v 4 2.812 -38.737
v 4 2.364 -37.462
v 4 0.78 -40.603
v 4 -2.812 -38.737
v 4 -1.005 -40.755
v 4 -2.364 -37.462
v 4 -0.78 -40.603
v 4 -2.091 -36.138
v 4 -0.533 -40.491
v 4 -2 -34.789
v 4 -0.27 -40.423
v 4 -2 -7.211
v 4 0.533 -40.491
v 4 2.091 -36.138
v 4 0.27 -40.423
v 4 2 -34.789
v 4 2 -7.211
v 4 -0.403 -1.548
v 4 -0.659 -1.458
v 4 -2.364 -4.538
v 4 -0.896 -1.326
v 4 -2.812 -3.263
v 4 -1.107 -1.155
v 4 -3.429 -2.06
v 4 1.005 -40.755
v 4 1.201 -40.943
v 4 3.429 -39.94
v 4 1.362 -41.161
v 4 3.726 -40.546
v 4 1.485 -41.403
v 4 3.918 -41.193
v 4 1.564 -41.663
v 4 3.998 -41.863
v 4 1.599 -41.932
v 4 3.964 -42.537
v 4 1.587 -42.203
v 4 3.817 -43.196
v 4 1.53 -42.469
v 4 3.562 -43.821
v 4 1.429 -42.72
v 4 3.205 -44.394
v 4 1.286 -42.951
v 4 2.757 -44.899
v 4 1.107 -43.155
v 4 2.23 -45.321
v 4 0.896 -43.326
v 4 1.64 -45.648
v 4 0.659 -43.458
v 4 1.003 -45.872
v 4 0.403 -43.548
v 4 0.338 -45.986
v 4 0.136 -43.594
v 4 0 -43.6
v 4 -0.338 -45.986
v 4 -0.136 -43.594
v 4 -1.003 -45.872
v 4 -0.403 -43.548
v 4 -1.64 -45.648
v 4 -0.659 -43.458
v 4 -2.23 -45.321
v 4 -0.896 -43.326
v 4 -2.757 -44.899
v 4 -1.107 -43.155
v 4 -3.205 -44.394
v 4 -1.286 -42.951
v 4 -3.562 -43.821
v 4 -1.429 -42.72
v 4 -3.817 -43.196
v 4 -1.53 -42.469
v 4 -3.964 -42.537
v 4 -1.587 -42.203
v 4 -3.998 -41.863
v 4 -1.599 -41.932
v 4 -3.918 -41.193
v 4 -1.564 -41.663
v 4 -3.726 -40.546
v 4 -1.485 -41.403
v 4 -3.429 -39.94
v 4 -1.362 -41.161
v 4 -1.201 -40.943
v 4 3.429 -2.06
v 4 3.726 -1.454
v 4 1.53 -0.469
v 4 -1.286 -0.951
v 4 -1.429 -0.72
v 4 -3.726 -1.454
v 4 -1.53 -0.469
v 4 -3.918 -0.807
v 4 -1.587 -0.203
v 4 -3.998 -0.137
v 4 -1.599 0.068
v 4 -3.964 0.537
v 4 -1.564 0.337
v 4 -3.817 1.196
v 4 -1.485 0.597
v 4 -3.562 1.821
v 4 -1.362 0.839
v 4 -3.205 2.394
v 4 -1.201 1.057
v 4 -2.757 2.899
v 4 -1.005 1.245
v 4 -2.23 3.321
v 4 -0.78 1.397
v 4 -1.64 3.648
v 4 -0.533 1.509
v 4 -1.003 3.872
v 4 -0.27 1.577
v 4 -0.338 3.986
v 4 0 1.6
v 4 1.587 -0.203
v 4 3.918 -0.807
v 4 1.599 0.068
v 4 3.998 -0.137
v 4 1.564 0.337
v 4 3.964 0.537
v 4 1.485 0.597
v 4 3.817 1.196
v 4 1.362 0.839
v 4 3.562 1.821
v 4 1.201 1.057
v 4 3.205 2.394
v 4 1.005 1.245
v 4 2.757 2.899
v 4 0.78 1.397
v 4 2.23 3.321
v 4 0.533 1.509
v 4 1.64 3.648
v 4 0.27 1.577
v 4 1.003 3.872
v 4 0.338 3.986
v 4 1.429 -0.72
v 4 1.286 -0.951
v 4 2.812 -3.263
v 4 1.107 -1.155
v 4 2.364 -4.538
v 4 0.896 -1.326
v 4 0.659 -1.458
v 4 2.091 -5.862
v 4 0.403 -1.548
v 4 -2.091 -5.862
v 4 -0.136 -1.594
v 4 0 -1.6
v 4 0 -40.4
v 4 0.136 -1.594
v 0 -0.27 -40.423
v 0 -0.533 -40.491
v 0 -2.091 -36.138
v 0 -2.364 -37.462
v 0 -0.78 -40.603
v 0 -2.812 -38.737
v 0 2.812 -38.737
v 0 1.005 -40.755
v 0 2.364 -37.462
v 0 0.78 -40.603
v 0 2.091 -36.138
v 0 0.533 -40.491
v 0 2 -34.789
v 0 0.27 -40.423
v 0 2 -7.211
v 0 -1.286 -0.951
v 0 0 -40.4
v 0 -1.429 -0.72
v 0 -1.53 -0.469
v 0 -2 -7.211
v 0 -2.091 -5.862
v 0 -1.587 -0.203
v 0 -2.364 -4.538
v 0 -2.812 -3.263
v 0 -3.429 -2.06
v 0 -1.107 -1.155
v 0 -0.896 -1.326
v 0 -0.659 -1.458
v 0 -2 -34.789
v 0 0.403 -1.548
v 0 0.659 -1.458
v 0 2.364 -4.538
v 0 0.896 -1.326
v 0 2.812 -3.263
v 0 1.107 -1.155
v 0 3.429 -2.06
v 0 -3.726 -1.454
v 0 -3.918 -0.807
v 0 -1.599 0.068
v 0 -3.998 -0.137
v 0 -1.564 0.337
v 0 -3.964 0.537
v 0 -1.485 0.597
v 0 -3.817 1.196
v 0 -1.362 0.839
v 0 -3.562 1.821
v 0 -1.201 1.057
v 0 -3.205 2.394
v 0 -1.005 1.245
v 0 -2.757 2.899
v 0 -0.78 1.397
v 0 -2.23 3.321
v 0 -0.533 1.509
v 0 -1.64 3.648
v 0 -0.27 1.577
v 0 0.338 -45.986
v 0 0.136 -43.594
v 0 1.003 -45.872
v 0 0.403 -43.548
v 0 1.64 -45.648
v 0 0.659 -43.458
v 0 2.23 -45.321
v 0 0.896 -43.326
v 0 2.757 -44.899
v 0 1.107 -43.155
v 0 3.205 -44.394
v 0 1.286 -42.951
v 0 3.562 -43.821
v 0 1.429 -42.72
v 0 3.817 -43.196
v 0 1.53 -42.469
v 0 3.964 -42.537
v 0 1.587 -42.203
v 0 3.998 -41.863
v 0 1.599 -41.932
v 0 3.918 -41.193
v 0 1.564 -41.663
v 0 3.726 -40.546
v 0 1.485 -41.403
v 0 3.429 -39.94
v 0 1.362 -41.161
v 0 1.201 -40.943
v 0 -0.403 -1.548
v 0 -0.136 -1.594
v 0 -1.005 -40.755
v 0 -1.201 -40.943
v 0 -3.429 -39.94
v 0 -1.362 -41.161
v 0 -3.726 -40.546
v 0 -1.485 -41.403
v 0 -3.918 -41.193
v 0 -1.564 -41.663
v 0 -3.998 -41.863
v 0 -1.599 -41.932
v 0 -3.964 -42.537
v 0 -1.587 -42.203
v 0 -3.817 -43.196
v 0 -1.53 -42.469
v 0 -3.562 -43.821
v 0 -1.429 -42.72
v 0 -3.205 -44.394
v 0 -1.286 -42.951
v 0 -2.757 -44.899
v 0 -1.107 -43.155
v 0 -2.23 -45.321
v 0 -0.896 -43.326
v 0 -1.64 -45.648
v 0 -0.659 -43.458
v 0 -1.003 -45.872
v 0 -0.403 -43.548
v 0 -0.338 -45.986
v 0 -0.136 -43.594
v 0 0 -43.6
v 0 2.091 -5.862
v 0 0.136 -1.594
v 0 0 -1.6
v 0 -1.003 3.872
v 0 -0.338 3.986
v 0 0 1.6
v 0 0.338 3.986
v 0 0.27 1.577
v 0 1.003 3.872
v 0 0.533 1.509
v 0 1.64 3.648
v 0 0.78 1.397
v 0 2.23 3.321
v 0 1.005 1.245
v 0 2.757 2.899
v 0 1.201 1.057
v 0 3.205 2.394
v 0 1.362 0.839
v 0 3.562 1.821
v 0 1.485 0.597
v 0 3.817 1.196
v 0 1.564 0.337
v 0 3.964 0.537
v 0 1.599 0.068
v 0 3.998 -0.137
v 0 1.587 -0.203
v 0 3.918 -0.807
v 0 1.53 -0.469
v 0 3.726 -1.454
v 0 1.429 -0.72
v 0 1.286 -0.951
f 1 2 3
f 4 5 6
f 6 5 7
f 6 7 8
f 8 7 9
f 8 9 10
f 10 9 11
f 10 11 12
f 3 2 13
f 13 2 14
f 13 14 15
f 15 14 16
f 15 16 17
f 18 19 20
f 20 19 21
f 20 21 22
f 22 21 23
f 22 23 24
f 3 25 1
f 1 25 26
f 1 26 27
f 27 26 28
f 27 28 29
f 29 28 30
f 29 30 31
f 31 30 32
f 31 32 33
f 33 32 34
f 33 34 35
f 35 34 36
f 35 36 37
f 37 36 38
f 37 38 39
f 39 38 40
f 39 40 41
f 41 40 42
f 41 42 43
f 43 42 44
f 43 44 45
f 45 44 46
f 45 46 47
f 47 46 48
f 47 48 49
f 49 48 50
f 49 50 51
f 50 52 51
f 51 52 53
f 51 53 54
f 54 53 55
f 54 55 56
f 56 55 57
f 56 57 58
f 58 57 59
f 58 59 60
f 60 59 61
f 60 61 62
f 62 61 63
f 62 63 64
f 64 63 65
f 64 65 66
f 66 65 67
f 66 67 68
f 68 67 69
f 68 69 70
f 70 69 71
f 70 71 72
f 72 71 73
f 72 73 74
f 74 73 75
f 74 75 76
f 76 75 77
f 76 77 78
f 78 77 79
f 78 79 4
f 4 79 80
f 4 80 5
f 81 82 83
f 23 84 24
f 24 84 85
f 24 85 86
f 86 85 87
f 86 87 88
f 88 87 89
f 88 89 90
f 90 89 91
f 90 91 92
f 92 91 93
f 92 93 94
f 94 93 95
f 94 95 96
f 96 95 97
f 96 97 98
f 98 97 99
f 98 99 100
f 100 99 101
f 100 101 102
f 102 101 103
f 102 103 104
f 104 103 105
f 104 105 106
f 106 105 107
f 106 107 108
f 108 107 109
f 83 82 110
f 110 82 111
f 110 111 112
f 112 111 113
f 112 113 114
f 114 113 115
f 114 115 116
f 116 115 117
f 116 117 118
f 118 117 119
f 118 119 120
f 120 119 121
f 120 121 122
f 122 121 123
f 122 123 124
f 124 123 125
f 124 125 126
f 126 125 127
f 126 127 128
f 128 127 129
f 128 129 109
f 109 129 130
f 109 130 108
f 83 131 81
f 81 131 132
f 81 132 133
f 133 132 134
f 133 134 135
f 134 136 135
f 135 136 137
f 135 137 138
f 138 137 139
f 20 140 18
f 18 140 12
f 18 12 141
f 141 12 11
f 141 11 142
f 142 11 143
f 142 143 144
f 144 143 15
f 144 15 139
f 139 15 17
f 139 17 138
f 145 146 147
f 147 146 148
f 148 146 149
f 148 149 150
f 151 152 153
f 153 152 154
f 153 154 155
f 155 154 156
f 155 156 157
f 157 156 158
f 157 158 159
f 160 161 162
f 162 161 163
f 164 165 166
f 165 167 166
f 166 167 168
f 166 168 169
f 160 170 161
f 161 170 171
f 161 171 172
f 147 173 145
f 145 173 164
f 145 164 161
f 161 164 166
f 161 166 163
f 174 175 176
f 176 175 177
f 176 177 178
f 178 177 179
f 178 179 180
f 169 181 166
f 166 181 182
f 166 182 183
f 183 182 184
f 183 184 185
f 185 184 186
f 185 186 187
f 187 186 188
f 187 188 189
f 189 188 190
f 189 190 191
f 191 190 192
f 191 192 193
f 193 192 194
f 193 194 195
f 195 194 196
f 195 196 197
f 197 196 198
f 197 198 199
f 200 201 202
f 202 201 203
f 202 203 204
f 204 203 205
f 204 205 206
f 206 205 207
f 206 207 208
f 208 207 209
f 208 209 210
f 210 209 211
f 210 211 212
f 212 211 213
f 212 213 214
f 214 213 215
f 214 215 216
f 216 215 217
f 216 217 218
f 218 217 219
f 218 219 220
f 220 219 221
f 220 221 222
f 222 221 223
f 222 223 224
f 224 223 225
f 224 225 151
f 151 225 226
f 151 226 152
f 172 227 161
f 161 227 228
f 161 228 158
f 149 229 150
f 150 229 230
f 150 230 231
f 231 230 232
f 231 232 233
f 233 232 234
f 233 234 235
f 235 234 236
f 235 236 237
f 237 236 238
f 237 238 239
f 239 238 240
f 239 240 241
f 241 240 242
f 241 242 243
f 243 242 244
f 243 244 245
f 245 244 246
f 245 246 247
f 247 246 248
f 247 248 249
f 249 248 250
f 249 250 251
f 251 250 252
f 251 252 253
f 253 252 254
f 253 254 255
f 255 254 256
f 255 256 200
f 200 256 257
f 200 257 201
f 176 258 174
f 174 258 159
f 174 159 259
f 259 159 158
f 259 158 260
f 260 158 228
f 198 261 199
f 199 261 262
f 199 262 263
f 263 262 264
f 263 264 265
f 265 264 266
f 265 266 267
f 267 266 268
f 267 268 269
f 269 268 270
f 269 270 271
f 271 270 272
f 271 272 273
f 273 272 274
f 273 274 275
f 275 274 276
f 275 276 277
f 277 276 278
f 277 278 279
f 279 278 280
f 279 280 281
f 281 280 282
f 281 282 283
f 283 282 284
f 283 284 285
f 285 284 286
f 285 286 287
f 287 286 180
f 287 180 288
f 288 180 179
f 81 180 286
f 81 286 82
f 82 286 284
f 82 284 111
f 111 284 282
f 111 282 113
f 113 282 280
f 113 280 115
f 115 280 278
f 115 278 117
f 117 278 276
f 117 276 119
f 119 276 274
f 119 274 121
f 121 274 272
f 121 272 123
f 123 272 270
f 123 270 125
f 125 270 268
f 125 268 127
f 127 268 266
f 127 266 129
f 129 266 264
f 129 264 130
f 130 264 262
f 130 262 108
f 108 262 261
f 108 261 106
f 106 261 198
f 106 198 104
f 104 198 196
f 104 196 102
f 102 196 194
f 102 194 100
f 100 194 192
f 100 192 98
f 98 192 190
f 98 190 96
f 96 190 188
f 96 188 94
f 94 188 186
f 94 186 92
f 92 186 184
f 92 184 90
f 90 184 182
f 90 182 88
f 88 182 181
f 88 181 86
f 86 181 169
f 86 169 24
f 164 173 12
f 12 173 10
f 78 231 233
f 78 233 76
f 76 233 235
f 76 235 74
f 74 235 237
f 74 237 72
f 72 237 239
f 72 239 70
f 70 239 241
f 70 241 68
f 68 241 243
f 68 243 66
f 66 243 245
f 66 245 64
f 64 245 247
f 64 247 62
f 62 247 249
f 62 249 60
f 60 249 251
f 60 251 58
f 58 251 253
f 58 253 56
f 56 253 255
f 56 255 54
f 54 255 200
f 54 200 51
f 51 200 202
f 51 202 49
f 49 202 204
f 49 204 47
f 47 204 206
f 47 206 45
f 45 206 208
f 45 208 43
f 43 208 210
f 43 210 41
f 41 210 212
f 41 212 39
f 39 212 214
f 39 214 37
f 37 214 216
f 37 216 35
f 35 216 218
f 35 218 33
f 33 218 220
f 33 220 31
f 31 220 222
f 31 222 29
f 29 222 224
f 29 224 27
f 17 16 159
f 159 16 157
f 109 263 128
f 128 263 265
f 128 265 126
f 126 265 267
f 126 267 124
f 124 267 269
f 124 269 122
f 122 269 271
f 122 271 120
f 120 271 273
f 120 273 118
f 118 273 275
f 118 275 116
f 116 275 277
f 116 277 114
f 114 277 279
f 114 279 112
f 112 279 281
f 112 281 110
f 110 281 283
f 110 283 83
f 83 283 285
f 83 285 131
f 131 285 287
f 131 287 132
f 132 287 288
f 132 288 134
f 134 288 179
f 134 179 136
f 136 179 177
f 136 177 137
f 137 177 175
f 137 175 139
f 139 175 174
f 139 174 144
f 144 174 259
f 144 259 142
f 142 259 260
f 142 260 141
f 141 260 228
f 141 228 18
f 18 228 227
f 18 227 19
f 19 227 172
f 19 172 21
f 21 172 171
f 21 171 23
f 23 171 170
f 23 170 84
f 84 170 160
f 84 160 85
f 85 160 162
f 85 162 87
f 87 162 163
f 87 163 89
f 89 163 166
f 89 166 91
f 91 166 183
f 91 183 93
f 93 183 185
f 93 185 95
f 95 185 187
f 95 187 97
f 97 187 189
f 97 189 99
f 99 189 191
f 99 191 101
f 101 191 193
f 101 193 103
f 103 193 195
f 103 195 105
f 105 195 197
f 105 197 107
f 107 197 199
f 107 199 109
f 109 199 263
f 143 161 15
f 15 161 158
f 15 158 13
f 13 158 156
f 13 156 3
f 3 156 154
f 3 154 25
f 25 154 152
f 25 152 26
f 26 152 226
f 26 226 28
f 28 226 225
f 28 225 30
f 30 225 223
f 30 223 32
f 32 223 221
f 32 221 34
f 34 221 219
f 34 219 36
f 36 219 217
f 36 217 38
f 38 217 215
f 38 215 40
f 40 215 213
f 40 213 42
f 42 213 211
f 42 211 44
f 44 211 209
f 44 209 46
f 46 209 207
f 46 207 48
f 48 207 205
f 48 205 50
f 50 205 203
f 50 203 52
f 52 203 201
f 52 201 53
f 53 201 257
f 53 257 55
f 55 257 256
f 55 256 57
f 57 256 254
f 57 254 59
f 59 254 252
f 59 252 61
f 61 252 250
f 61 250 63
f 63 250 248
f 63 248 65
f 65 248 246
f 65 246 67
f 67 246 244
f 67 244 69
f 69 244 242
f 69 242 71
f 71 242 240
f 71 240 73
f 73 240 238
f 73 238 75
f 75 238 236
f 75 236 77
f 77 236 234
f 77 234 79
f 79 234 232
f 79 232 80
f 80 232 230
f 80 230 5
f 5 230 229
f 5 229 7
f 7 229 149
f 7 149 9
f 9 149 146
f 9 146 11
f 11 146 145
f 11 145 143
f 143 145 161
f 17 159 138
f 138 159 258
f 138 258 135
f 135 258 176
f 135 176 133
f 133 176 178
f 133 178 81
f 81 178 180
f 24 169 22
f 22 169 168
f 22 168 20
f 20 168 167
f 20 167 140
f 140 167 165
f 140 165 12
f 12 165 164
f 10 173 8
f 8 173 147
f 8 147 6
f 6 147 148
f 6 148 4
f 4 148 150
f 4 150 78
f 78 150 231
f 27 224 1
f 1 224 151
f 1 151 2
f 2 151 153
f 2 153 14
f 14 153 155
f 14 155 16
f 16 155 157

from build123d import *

# Parameters (mm, degrees)
SKETCH1_R           = 1.6
BOSS_EXTRUDE1_DEPTH = 4
FILLET1_R           = 10


with BuildPart() as part:
    # Sketch1 → Boss-Extrude1 (new body)
    with BuildSketch(Plane(origin=(0, 0, 0), x_dir=(0, 0, -1), z_dir=(1, 0, 0))):
        with BuildLine():
            Line((21, 2), (38.535898385, 2))
            ThreePointArc((38.535898385, 2), (46, 0), (38.535898385, -2))
            Line((38.535898385, -2), (21, -2))
            Line((21, -2), (3.464101615, -2))
            ThreePointArc((3.464101615, -2), (-4, 0), (3.464101615, 2))
            Line((3.464101615, 2), (21, 2))
        make_face()
        Circle(SKETCH1_R, mode=Mode.SUBTRACT)
        with Locations((42, 0)):
            Circle(SKETCH1_R, mode=Mode.SUBTRACT)
    extrude(amount=BOSS_EXTRUDE1_DEPTH)

    # Fillet1
    fillet1_edges = [part.edges().sort_by_distance(p)[0] for p in [
        (2, 2, -38.535898385),
        (2, -2, -38.535898385),
        (2, -2, -3.464101615),
        (2, 2, -3.464101615),
    ]]
    fillet(fillet1_edges, radius=FILLET1_R)


solid = part.part
